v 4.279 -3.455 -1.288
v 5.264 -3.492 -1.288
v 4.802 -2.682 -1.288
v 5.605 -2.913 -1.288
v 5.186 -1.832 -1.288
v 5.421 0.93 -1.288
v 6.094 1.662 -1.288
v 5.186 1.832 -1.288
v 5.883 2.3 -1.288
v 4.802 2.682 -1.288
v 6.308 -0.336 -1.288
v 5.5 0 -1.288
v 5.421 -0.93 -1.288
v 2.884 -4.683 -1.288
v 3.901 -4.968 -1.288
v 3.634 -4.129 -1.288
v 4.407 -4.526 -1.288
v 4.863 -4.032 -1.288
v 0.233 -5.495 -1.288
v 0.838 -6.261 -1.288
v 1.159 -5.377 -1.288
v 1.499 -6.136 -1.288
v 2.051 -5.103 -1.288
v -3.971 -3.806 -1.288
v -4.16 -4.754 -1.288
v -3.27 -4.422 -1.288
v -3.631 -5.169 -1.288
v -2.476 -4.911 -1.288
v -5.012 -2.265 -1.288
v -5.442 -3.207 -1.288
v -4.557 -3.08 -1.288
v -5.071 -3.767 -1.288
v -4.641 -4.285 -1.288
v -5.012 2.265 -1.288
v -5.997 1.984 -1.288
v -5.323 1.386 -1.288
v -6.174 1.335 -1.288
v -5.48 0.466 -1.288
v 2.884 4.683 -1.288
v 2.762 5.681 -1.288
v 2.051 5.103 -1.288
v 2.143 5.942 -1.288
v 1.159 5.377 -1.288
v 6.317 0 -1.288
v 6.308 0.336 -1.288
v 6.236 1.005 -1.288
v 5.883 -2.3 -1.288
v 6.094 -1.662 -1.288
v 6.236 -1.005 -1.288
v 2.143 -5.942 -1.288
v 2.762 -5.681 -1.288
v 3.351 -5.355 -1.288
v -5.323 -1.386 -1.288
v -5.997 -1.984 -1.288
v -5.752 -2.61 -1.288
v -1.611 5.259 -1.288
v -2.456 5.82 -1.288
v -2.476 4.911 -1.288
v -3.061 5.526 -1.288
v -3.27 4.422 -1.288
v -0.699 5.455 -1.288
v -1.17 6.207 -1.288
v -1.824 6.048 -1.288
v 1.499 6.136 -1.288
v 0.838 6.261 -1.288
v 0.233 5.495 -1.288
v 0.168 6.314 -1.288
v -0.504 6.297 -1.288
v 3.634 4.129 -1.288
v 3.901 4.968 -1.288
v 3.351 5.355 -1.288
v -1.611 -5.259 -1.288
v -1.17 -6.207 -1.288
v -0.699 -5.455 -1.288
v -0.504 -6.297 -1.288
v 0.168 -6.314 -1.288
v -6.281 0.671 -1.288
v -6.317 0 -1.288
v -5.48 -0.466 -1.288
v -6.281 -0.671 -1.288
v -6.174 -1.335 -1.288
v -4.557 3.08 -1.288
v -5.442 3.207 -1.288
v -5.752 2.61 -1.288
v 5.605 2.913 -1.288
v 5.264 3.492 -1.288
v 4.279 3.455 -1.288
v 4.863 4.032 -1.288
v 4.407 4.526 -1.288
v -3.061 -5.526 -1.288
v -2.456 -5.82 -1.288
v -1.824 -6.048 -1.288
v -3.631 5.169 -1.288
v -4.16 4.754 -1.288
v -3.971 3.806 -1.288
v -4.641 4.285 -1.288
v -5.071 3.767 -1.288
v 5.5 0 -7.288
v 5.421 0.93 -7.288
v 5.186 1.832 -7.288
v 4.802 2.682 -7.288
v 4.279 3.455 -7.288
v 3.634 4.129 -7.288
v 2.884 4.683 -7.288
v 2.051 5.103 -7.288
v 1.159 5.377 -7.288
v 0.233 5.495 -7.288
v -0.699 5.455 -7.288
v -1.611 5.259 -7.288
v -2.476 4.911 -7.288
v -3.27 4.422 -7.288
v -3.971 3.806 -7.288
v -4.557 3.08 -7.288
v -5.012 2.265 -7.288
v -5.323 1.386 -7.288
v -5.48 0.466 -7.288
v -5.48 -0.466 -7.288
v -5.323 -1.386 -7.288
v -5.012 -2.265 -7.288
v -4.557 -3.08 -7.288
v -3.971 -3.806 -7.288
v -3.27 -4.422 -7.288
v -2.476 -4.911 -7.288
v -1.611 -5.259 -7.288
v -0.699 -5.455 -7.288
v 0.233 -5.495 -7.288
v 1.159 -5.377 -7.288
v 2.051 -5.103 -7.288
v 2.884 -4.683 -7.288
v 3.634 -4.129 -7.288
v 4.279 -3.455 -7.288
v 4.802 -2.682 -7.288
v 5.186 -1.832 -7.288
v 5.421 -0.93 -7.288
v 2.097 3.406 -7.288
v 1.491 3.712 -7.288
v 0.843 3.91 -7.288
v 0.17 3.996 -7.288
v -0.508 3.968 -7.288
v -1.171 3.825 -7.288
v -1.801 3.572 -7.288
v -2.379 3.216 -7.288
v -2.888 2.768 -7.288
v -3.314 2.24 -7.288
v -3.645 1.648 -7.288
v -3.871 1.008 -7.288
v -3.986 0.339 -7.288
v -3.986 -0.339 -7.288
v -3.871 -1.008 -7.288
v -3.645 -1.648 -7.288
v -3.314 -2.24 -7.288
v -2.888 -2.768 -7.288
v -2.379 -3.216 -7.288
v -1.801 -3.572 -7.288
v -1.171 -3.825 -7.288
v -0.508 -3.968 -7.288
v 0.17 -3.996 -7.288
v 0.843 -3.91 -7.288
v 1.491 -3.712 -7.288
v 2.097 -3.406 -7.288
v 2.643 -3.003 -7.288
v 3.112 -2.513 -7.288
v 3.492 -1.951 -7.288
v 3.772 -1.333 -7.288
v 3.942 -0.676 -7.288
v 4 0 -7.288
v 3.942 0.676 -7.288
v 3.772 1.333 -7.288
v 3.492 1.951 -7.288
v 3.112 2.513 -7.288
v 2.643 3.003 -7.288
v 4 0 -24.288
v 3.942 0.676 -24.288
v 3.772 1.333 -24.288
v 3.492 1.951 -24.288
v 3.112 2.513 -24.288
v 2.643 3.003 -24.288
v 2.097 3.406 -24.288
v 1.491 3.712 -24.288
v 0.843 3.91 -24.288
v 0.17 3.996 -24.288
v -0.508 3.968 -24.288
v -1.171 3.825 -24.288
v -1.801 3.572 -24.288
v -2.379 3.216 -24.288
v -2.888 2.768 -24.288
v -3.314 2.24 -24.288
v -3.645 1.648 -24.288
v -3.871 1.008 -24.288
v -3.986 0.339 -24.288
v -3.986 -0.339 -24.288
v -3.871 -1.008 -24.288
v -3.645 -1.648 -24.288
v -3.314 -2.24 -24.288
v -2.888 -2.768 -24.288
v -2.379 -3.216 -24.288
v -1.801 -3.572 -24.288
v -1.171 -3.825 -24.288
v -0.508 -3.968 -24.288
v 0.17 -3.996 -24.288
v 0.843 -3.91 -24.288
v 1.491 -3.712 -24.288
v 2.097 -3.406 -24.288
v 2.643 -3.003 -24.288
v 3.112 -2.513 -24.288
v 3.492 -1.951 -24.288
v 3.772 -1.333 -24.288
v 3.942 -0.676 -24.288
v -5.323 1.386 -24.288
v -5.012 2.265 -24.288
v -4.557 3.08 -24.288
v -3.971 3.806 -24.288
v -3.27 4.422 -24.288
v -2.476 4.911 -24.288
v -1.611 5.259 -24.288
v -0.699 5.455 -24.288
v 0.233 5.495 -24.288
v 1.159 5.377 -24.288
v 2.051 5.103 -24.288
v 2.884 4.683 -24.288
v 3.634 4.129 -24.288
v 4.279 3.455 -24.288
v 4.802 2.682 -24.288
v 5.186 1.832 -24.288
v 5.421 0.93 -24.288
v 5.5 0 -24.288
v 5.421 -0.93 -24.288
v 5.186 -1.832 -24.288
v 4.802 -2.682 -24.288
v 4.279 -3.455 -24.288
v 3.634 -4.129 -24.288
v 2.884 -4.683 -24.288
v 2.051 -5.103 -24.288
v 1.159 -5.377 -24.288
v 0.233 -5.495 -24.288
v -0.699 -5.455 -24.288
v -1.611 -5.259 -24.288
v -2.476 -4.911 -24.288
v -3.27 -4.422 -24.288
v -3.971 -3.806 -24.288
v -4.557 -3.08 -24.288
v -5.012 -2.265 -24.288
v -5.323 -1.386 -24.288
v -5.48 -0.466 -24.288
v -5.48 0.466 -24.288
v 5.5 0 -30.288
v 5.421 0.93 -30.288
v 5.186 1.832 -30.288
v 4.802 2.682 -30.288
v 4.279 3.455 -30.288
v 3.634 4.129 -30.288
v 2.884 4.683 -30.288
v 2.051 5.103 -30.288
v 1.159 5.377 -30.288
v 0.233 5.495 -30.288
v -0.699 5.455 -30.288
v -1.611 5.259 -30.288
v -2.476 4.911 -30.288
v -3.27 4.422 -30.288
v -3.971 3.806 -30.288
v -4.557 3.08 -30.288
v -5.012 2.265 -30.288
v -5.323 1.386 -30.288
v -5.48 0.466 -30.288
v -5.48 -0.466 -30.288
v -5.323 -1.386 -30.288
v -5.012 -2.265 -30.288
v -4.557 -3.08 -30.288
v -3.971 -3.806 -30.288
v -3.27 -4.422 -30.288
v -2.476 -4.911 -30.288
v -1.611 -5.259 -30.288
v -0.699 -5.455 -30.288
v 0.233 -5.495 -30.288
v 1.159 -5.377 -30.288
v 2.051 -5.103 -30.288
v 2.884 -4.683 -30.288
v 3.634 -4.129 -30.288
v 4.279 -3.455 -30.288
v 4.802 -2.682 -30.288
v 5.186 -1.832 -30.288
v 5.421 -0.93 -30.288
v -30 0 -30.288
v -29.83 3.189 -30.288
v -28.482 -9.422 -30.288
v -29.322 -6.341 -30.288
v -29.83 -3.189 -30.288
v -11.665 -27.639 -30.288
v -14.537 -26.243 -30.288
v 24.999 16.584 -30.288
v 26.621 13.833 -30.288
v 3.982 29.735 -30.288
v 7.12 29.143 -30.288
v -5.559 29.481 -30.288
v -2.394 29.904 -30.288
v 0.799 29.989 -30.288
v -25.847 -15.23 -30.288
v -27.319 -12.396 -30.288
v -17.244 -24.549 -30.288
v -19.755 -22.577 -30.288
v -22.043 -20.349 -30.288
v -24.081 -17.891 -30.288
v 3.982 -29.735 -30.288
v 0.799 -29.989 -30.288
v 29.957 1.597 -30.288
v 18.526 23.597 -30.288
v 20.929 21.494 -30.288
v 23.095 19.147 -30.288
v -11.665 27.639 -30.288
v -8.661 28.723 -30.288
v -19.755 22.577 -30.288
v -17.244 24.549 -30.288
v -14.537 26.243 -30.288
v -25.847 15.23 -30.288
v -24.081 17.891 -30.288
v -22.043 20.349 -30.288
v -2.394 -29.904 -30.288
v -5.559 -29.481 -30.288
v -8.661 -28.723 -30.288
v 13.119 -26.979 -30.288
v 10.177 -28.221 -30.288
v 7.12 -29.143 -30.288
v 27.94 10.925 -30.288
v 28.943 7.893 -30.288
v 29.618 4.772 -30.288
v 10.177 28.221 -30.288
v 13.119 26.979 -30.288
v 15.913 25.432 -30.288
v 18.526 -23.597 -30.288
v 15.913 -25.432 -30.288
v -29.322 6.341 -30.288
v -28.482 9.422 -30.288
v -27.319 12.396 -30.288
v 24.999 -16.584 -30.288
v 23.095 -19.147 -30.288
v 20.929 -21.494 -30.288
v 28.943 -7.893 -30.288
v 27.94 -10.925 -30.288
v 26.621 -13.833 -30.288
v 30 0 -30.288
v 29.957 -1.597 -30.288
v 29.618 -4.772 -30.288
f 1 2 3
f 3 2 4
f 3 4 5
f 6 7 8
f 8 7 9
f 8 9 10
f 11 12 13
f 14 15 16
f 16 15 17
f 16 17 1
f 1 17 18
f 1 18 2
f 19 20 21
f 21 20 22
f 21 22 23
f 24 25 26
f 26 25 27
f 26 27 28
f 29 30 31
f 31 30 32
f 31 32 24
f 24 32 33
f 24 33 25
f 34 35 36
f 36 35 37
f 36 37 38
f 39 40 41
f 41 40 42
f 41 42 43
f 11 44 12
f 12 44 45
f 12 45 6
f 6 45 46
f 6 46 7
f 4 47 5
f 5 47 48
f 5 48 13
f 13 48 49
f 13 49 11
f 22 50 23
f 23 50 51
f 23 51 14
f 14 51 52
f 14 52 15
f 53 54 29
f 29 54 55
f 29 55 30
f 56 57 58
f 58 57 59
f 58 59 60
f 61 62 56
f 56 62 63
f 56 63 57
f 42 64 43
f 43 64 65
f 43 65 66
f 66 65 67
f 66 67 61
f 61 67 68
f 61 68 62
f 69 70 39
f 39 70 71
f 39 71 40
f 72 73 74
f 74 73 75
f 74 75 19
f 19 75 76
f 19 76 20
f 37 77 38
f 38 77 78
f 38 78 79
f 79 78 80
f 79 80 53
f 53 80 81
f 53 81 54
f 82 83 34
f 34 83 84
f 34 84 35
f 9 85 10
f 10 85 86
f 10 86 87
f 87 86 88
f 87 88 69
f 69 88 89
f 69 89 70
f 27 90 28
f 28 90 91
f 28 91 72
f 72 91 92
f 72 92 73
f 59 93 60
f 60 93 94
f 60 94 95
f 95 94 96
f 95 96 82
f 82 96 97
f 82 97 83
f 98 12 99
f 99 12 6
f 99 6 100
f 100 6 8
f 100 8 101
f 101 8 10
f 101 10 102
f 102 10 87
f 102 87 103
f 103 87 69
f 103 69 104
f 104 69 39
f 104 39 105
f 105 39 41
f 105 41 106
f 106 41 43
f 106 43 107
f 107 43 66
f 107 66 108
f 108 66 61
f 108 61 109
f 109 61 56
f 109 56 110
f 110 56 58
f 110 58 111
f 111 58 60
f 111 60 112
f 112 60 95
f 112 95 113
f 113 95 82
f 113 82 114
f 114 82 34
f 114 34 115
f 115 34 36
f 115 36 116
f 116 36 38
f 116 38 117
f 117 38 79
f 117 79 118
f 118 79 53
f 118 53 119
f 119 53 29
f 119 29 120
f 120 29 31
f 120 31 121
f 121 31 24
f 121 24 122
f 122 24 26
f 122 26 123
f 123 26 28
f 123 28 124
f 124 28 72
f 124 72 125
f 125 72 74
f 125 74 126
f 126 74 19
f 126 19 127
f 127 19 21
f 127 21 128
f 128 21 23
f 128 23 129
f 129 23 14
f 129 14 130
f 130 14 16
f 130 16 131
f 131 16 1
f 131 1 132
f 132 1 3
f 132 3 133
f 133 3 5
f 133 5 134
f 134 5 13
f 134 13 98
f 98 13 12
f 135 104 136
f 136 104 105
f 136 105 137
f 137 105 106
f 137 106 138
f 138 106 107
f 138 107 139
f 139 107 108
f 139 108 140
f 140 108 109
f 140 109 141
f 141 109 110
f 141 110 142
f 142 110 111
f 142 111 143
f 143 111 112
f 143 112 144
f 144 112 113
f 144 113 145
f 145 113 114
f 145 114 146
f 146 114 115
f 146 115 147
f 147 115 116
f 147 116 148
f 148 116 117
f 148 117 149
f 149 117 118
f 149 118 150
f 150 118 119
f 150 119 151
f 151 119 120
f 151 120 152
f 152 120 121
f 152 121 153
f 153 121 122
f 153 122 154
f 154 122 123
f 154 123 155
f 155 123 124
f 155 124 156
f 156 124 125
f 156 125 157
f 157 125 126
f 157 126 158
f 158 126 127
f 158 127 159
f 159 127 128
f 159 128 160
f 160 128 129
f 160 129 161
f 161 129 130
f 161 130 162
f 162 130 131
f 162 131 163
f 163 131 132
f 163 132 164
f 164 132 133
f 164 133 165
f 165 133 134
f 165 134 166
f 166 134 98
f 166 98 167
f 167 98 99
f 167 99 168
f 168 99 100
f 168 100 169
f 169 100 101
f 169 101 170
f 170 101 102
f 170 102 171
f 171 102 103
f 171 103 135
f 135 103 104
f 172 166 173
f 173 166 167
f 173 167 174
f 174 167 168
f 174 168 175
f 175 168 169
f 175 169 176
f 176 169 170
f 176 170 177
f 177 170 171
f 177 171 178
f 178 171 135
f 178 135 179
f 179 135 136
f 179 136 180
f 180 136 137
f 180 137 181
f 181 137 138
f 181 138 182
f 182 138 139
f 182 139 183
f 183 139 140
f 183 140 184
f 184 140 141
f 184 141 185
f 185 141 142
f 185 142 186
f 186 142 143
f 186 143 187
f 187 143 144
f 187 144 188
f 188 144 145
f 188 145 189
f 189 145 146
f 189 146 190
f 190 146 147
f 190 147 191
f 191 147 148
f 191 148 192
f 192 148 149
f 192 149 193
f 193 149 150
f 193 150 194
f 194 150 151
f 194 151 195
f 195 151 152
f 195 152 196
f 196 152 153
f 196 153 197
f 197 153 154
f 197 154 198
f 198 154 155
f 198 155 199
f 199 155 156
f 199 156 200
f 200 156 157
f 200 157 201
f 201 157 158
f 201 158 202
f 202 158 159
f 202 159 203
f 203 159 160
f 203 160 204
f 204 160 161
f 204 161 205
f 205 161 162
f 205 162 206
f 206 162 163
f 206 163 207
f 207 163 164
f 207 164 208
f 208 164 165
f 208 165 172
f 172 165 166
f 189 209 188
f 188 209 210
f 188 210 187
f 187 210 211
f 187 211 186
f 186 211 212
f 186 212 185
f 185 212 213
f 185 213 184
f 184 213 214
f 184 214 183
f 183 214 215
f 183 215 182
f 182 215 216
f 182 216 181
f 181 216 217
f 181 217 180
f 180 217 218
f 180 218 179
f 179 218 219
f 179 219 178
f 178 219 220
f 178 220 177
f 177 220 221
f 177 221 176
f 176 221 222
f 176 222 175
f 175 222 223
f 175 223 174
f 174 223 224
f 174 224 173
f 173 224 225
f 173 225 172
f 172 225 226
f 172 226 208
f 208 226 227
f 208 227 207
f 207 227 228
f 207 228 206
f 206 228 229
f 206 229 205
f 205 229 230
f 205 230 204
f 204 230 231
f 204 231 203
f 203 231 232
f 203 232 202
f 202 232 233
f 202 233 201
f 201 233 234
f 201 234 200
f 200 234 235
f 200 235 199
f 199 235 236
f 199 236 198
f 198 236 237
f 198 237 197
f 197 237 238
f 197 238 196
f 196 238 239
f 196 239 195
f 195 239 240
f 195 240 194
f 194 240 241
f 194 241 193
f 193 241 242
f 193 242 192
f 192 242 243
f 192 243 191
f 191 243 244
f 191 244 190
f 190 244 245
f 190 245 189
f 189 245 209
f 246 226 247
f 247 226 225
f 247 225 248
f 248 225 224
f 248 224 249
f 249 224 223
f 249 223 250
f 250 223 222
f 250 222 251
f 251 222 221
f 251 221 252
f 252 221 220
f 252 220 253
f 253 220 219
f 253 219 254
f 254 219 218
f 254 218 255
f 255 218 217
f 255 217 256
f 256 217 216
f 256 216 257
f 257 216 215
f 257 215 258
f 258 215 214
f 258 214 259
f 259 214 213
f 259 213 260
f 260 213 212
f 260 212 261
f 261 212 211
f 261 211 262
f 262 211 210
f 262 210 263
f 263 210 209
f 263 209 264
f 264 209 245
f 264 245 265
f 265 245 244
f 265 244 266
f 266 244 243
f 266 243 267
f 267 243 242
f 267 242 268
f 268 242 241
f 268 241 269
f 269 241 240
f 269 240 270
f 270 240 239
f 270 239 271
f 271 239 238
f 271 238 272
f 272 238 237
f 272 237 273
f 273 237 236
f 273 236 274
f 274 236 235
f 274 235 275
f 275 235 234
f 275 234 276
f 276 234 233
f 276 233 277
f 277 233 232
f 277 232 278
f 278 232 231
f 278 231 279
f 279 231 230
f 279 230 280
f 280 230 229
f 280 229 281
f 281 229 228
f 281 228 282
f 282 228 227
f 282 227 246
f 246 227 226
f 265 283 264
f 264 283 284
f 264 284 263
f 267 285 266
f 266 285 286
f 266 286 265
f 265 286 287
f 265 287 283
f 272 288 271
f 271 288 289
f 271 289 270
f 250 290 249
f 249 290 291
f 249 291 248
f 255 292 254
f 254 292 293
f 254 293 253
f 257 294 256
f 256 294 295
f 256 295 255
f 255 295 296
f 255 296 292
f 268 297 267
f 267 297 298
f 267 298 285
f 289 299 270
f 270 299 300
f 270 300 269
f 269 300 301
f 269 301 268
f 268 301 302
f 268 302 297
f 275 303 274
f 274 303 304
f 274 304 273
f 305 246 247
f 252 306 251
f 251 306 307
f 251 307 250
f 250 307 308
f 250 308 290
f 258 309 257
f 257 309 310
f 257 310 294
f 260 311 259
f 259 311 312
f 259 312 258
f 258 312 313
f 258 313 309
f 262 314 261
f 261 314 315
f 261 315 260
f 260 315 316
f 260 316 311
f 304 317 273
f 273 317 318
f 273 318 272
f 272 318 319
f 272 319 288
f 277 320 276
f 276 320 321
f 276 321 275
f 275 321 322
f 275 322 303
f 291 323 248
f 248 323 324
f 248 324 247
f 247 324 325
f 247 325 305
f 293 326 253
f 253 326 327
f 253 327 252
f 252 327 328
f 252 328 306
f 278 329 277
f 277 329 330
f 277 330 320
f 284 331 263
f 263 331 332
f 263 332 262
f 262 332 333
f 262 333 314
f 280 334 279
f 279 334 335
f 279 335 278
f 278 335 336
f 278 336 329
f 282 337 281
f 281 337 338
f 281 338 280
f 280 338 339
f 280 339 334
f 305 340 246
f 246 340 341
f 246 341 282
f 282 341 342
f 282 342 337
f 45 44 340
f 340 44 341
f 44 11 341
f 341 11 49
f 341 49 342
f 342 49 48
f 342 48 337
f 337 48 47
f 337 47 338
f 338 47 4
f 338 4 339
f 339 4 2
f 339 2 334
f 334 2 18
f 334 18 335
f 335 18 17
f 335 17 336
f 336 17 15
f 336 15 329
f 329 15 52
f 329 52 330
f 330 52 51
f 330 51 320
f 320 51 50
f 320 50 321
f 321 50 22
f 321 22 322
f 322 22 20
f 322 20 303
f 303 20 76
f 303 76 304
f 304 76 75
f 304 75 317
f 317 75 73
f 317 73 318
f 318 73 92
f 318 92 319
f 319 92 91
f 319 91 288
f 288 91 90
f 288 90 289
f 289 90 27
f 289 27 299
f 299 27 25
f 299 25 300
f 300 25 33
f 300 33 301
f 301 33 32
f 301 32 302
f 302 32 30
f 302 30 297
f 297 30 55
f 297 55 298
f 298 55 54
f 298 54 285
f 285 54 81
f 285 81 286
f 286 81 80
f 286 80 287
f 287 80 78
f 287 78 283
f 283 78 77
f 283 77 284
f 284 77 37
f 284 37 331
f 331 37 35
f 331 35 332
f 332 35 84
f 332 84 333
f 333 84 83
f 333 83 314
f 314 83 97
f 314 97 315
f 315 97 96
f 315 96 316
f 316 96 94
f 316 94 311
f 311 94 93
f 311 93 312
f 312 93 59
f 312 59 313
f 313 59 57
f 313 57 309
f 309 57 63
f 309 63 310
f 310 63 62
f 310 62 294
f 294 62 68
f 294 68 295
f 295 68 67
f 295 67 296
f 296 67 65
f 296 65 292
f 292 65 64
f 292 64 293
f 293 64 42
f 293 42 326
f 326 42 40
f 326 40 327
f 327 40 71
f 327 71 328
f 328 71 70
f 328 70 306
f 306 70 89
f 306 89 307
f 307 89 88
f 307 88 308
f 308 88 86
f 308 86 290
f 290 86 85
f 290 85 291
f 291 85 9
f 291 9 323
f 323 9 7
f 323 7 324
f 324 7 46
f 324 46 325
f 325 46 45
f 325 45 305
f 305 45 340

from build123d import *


with BuildPart() as part:
    # Skica1 → Rotovat1 (revolve)
    with BuildSketch(Plane(origin=(0, 0, 0), x_dir=(0, 0, -1), z_dir=(1, 0, 0)), mode=Mode.PRIVATE) as rotovat1_sk:
        Polygon((1.288336748, 5.5), (7.288336748, 5.5), (7.288336748, 4), (24.288262464, 4), (24.288262464, 5.5), (30.288262464, 5.5), (30.288262464, 30), (1.288336748, 6.316727332), align=None)
    revolve(rotovat1_sk.sketch.rotate(Axis((0, 0, 59.95975236), (0, 0, -1)), 90), axis=Axis((0, 0, 59.95975236), (0, 0, -1)))


solid = part.part
